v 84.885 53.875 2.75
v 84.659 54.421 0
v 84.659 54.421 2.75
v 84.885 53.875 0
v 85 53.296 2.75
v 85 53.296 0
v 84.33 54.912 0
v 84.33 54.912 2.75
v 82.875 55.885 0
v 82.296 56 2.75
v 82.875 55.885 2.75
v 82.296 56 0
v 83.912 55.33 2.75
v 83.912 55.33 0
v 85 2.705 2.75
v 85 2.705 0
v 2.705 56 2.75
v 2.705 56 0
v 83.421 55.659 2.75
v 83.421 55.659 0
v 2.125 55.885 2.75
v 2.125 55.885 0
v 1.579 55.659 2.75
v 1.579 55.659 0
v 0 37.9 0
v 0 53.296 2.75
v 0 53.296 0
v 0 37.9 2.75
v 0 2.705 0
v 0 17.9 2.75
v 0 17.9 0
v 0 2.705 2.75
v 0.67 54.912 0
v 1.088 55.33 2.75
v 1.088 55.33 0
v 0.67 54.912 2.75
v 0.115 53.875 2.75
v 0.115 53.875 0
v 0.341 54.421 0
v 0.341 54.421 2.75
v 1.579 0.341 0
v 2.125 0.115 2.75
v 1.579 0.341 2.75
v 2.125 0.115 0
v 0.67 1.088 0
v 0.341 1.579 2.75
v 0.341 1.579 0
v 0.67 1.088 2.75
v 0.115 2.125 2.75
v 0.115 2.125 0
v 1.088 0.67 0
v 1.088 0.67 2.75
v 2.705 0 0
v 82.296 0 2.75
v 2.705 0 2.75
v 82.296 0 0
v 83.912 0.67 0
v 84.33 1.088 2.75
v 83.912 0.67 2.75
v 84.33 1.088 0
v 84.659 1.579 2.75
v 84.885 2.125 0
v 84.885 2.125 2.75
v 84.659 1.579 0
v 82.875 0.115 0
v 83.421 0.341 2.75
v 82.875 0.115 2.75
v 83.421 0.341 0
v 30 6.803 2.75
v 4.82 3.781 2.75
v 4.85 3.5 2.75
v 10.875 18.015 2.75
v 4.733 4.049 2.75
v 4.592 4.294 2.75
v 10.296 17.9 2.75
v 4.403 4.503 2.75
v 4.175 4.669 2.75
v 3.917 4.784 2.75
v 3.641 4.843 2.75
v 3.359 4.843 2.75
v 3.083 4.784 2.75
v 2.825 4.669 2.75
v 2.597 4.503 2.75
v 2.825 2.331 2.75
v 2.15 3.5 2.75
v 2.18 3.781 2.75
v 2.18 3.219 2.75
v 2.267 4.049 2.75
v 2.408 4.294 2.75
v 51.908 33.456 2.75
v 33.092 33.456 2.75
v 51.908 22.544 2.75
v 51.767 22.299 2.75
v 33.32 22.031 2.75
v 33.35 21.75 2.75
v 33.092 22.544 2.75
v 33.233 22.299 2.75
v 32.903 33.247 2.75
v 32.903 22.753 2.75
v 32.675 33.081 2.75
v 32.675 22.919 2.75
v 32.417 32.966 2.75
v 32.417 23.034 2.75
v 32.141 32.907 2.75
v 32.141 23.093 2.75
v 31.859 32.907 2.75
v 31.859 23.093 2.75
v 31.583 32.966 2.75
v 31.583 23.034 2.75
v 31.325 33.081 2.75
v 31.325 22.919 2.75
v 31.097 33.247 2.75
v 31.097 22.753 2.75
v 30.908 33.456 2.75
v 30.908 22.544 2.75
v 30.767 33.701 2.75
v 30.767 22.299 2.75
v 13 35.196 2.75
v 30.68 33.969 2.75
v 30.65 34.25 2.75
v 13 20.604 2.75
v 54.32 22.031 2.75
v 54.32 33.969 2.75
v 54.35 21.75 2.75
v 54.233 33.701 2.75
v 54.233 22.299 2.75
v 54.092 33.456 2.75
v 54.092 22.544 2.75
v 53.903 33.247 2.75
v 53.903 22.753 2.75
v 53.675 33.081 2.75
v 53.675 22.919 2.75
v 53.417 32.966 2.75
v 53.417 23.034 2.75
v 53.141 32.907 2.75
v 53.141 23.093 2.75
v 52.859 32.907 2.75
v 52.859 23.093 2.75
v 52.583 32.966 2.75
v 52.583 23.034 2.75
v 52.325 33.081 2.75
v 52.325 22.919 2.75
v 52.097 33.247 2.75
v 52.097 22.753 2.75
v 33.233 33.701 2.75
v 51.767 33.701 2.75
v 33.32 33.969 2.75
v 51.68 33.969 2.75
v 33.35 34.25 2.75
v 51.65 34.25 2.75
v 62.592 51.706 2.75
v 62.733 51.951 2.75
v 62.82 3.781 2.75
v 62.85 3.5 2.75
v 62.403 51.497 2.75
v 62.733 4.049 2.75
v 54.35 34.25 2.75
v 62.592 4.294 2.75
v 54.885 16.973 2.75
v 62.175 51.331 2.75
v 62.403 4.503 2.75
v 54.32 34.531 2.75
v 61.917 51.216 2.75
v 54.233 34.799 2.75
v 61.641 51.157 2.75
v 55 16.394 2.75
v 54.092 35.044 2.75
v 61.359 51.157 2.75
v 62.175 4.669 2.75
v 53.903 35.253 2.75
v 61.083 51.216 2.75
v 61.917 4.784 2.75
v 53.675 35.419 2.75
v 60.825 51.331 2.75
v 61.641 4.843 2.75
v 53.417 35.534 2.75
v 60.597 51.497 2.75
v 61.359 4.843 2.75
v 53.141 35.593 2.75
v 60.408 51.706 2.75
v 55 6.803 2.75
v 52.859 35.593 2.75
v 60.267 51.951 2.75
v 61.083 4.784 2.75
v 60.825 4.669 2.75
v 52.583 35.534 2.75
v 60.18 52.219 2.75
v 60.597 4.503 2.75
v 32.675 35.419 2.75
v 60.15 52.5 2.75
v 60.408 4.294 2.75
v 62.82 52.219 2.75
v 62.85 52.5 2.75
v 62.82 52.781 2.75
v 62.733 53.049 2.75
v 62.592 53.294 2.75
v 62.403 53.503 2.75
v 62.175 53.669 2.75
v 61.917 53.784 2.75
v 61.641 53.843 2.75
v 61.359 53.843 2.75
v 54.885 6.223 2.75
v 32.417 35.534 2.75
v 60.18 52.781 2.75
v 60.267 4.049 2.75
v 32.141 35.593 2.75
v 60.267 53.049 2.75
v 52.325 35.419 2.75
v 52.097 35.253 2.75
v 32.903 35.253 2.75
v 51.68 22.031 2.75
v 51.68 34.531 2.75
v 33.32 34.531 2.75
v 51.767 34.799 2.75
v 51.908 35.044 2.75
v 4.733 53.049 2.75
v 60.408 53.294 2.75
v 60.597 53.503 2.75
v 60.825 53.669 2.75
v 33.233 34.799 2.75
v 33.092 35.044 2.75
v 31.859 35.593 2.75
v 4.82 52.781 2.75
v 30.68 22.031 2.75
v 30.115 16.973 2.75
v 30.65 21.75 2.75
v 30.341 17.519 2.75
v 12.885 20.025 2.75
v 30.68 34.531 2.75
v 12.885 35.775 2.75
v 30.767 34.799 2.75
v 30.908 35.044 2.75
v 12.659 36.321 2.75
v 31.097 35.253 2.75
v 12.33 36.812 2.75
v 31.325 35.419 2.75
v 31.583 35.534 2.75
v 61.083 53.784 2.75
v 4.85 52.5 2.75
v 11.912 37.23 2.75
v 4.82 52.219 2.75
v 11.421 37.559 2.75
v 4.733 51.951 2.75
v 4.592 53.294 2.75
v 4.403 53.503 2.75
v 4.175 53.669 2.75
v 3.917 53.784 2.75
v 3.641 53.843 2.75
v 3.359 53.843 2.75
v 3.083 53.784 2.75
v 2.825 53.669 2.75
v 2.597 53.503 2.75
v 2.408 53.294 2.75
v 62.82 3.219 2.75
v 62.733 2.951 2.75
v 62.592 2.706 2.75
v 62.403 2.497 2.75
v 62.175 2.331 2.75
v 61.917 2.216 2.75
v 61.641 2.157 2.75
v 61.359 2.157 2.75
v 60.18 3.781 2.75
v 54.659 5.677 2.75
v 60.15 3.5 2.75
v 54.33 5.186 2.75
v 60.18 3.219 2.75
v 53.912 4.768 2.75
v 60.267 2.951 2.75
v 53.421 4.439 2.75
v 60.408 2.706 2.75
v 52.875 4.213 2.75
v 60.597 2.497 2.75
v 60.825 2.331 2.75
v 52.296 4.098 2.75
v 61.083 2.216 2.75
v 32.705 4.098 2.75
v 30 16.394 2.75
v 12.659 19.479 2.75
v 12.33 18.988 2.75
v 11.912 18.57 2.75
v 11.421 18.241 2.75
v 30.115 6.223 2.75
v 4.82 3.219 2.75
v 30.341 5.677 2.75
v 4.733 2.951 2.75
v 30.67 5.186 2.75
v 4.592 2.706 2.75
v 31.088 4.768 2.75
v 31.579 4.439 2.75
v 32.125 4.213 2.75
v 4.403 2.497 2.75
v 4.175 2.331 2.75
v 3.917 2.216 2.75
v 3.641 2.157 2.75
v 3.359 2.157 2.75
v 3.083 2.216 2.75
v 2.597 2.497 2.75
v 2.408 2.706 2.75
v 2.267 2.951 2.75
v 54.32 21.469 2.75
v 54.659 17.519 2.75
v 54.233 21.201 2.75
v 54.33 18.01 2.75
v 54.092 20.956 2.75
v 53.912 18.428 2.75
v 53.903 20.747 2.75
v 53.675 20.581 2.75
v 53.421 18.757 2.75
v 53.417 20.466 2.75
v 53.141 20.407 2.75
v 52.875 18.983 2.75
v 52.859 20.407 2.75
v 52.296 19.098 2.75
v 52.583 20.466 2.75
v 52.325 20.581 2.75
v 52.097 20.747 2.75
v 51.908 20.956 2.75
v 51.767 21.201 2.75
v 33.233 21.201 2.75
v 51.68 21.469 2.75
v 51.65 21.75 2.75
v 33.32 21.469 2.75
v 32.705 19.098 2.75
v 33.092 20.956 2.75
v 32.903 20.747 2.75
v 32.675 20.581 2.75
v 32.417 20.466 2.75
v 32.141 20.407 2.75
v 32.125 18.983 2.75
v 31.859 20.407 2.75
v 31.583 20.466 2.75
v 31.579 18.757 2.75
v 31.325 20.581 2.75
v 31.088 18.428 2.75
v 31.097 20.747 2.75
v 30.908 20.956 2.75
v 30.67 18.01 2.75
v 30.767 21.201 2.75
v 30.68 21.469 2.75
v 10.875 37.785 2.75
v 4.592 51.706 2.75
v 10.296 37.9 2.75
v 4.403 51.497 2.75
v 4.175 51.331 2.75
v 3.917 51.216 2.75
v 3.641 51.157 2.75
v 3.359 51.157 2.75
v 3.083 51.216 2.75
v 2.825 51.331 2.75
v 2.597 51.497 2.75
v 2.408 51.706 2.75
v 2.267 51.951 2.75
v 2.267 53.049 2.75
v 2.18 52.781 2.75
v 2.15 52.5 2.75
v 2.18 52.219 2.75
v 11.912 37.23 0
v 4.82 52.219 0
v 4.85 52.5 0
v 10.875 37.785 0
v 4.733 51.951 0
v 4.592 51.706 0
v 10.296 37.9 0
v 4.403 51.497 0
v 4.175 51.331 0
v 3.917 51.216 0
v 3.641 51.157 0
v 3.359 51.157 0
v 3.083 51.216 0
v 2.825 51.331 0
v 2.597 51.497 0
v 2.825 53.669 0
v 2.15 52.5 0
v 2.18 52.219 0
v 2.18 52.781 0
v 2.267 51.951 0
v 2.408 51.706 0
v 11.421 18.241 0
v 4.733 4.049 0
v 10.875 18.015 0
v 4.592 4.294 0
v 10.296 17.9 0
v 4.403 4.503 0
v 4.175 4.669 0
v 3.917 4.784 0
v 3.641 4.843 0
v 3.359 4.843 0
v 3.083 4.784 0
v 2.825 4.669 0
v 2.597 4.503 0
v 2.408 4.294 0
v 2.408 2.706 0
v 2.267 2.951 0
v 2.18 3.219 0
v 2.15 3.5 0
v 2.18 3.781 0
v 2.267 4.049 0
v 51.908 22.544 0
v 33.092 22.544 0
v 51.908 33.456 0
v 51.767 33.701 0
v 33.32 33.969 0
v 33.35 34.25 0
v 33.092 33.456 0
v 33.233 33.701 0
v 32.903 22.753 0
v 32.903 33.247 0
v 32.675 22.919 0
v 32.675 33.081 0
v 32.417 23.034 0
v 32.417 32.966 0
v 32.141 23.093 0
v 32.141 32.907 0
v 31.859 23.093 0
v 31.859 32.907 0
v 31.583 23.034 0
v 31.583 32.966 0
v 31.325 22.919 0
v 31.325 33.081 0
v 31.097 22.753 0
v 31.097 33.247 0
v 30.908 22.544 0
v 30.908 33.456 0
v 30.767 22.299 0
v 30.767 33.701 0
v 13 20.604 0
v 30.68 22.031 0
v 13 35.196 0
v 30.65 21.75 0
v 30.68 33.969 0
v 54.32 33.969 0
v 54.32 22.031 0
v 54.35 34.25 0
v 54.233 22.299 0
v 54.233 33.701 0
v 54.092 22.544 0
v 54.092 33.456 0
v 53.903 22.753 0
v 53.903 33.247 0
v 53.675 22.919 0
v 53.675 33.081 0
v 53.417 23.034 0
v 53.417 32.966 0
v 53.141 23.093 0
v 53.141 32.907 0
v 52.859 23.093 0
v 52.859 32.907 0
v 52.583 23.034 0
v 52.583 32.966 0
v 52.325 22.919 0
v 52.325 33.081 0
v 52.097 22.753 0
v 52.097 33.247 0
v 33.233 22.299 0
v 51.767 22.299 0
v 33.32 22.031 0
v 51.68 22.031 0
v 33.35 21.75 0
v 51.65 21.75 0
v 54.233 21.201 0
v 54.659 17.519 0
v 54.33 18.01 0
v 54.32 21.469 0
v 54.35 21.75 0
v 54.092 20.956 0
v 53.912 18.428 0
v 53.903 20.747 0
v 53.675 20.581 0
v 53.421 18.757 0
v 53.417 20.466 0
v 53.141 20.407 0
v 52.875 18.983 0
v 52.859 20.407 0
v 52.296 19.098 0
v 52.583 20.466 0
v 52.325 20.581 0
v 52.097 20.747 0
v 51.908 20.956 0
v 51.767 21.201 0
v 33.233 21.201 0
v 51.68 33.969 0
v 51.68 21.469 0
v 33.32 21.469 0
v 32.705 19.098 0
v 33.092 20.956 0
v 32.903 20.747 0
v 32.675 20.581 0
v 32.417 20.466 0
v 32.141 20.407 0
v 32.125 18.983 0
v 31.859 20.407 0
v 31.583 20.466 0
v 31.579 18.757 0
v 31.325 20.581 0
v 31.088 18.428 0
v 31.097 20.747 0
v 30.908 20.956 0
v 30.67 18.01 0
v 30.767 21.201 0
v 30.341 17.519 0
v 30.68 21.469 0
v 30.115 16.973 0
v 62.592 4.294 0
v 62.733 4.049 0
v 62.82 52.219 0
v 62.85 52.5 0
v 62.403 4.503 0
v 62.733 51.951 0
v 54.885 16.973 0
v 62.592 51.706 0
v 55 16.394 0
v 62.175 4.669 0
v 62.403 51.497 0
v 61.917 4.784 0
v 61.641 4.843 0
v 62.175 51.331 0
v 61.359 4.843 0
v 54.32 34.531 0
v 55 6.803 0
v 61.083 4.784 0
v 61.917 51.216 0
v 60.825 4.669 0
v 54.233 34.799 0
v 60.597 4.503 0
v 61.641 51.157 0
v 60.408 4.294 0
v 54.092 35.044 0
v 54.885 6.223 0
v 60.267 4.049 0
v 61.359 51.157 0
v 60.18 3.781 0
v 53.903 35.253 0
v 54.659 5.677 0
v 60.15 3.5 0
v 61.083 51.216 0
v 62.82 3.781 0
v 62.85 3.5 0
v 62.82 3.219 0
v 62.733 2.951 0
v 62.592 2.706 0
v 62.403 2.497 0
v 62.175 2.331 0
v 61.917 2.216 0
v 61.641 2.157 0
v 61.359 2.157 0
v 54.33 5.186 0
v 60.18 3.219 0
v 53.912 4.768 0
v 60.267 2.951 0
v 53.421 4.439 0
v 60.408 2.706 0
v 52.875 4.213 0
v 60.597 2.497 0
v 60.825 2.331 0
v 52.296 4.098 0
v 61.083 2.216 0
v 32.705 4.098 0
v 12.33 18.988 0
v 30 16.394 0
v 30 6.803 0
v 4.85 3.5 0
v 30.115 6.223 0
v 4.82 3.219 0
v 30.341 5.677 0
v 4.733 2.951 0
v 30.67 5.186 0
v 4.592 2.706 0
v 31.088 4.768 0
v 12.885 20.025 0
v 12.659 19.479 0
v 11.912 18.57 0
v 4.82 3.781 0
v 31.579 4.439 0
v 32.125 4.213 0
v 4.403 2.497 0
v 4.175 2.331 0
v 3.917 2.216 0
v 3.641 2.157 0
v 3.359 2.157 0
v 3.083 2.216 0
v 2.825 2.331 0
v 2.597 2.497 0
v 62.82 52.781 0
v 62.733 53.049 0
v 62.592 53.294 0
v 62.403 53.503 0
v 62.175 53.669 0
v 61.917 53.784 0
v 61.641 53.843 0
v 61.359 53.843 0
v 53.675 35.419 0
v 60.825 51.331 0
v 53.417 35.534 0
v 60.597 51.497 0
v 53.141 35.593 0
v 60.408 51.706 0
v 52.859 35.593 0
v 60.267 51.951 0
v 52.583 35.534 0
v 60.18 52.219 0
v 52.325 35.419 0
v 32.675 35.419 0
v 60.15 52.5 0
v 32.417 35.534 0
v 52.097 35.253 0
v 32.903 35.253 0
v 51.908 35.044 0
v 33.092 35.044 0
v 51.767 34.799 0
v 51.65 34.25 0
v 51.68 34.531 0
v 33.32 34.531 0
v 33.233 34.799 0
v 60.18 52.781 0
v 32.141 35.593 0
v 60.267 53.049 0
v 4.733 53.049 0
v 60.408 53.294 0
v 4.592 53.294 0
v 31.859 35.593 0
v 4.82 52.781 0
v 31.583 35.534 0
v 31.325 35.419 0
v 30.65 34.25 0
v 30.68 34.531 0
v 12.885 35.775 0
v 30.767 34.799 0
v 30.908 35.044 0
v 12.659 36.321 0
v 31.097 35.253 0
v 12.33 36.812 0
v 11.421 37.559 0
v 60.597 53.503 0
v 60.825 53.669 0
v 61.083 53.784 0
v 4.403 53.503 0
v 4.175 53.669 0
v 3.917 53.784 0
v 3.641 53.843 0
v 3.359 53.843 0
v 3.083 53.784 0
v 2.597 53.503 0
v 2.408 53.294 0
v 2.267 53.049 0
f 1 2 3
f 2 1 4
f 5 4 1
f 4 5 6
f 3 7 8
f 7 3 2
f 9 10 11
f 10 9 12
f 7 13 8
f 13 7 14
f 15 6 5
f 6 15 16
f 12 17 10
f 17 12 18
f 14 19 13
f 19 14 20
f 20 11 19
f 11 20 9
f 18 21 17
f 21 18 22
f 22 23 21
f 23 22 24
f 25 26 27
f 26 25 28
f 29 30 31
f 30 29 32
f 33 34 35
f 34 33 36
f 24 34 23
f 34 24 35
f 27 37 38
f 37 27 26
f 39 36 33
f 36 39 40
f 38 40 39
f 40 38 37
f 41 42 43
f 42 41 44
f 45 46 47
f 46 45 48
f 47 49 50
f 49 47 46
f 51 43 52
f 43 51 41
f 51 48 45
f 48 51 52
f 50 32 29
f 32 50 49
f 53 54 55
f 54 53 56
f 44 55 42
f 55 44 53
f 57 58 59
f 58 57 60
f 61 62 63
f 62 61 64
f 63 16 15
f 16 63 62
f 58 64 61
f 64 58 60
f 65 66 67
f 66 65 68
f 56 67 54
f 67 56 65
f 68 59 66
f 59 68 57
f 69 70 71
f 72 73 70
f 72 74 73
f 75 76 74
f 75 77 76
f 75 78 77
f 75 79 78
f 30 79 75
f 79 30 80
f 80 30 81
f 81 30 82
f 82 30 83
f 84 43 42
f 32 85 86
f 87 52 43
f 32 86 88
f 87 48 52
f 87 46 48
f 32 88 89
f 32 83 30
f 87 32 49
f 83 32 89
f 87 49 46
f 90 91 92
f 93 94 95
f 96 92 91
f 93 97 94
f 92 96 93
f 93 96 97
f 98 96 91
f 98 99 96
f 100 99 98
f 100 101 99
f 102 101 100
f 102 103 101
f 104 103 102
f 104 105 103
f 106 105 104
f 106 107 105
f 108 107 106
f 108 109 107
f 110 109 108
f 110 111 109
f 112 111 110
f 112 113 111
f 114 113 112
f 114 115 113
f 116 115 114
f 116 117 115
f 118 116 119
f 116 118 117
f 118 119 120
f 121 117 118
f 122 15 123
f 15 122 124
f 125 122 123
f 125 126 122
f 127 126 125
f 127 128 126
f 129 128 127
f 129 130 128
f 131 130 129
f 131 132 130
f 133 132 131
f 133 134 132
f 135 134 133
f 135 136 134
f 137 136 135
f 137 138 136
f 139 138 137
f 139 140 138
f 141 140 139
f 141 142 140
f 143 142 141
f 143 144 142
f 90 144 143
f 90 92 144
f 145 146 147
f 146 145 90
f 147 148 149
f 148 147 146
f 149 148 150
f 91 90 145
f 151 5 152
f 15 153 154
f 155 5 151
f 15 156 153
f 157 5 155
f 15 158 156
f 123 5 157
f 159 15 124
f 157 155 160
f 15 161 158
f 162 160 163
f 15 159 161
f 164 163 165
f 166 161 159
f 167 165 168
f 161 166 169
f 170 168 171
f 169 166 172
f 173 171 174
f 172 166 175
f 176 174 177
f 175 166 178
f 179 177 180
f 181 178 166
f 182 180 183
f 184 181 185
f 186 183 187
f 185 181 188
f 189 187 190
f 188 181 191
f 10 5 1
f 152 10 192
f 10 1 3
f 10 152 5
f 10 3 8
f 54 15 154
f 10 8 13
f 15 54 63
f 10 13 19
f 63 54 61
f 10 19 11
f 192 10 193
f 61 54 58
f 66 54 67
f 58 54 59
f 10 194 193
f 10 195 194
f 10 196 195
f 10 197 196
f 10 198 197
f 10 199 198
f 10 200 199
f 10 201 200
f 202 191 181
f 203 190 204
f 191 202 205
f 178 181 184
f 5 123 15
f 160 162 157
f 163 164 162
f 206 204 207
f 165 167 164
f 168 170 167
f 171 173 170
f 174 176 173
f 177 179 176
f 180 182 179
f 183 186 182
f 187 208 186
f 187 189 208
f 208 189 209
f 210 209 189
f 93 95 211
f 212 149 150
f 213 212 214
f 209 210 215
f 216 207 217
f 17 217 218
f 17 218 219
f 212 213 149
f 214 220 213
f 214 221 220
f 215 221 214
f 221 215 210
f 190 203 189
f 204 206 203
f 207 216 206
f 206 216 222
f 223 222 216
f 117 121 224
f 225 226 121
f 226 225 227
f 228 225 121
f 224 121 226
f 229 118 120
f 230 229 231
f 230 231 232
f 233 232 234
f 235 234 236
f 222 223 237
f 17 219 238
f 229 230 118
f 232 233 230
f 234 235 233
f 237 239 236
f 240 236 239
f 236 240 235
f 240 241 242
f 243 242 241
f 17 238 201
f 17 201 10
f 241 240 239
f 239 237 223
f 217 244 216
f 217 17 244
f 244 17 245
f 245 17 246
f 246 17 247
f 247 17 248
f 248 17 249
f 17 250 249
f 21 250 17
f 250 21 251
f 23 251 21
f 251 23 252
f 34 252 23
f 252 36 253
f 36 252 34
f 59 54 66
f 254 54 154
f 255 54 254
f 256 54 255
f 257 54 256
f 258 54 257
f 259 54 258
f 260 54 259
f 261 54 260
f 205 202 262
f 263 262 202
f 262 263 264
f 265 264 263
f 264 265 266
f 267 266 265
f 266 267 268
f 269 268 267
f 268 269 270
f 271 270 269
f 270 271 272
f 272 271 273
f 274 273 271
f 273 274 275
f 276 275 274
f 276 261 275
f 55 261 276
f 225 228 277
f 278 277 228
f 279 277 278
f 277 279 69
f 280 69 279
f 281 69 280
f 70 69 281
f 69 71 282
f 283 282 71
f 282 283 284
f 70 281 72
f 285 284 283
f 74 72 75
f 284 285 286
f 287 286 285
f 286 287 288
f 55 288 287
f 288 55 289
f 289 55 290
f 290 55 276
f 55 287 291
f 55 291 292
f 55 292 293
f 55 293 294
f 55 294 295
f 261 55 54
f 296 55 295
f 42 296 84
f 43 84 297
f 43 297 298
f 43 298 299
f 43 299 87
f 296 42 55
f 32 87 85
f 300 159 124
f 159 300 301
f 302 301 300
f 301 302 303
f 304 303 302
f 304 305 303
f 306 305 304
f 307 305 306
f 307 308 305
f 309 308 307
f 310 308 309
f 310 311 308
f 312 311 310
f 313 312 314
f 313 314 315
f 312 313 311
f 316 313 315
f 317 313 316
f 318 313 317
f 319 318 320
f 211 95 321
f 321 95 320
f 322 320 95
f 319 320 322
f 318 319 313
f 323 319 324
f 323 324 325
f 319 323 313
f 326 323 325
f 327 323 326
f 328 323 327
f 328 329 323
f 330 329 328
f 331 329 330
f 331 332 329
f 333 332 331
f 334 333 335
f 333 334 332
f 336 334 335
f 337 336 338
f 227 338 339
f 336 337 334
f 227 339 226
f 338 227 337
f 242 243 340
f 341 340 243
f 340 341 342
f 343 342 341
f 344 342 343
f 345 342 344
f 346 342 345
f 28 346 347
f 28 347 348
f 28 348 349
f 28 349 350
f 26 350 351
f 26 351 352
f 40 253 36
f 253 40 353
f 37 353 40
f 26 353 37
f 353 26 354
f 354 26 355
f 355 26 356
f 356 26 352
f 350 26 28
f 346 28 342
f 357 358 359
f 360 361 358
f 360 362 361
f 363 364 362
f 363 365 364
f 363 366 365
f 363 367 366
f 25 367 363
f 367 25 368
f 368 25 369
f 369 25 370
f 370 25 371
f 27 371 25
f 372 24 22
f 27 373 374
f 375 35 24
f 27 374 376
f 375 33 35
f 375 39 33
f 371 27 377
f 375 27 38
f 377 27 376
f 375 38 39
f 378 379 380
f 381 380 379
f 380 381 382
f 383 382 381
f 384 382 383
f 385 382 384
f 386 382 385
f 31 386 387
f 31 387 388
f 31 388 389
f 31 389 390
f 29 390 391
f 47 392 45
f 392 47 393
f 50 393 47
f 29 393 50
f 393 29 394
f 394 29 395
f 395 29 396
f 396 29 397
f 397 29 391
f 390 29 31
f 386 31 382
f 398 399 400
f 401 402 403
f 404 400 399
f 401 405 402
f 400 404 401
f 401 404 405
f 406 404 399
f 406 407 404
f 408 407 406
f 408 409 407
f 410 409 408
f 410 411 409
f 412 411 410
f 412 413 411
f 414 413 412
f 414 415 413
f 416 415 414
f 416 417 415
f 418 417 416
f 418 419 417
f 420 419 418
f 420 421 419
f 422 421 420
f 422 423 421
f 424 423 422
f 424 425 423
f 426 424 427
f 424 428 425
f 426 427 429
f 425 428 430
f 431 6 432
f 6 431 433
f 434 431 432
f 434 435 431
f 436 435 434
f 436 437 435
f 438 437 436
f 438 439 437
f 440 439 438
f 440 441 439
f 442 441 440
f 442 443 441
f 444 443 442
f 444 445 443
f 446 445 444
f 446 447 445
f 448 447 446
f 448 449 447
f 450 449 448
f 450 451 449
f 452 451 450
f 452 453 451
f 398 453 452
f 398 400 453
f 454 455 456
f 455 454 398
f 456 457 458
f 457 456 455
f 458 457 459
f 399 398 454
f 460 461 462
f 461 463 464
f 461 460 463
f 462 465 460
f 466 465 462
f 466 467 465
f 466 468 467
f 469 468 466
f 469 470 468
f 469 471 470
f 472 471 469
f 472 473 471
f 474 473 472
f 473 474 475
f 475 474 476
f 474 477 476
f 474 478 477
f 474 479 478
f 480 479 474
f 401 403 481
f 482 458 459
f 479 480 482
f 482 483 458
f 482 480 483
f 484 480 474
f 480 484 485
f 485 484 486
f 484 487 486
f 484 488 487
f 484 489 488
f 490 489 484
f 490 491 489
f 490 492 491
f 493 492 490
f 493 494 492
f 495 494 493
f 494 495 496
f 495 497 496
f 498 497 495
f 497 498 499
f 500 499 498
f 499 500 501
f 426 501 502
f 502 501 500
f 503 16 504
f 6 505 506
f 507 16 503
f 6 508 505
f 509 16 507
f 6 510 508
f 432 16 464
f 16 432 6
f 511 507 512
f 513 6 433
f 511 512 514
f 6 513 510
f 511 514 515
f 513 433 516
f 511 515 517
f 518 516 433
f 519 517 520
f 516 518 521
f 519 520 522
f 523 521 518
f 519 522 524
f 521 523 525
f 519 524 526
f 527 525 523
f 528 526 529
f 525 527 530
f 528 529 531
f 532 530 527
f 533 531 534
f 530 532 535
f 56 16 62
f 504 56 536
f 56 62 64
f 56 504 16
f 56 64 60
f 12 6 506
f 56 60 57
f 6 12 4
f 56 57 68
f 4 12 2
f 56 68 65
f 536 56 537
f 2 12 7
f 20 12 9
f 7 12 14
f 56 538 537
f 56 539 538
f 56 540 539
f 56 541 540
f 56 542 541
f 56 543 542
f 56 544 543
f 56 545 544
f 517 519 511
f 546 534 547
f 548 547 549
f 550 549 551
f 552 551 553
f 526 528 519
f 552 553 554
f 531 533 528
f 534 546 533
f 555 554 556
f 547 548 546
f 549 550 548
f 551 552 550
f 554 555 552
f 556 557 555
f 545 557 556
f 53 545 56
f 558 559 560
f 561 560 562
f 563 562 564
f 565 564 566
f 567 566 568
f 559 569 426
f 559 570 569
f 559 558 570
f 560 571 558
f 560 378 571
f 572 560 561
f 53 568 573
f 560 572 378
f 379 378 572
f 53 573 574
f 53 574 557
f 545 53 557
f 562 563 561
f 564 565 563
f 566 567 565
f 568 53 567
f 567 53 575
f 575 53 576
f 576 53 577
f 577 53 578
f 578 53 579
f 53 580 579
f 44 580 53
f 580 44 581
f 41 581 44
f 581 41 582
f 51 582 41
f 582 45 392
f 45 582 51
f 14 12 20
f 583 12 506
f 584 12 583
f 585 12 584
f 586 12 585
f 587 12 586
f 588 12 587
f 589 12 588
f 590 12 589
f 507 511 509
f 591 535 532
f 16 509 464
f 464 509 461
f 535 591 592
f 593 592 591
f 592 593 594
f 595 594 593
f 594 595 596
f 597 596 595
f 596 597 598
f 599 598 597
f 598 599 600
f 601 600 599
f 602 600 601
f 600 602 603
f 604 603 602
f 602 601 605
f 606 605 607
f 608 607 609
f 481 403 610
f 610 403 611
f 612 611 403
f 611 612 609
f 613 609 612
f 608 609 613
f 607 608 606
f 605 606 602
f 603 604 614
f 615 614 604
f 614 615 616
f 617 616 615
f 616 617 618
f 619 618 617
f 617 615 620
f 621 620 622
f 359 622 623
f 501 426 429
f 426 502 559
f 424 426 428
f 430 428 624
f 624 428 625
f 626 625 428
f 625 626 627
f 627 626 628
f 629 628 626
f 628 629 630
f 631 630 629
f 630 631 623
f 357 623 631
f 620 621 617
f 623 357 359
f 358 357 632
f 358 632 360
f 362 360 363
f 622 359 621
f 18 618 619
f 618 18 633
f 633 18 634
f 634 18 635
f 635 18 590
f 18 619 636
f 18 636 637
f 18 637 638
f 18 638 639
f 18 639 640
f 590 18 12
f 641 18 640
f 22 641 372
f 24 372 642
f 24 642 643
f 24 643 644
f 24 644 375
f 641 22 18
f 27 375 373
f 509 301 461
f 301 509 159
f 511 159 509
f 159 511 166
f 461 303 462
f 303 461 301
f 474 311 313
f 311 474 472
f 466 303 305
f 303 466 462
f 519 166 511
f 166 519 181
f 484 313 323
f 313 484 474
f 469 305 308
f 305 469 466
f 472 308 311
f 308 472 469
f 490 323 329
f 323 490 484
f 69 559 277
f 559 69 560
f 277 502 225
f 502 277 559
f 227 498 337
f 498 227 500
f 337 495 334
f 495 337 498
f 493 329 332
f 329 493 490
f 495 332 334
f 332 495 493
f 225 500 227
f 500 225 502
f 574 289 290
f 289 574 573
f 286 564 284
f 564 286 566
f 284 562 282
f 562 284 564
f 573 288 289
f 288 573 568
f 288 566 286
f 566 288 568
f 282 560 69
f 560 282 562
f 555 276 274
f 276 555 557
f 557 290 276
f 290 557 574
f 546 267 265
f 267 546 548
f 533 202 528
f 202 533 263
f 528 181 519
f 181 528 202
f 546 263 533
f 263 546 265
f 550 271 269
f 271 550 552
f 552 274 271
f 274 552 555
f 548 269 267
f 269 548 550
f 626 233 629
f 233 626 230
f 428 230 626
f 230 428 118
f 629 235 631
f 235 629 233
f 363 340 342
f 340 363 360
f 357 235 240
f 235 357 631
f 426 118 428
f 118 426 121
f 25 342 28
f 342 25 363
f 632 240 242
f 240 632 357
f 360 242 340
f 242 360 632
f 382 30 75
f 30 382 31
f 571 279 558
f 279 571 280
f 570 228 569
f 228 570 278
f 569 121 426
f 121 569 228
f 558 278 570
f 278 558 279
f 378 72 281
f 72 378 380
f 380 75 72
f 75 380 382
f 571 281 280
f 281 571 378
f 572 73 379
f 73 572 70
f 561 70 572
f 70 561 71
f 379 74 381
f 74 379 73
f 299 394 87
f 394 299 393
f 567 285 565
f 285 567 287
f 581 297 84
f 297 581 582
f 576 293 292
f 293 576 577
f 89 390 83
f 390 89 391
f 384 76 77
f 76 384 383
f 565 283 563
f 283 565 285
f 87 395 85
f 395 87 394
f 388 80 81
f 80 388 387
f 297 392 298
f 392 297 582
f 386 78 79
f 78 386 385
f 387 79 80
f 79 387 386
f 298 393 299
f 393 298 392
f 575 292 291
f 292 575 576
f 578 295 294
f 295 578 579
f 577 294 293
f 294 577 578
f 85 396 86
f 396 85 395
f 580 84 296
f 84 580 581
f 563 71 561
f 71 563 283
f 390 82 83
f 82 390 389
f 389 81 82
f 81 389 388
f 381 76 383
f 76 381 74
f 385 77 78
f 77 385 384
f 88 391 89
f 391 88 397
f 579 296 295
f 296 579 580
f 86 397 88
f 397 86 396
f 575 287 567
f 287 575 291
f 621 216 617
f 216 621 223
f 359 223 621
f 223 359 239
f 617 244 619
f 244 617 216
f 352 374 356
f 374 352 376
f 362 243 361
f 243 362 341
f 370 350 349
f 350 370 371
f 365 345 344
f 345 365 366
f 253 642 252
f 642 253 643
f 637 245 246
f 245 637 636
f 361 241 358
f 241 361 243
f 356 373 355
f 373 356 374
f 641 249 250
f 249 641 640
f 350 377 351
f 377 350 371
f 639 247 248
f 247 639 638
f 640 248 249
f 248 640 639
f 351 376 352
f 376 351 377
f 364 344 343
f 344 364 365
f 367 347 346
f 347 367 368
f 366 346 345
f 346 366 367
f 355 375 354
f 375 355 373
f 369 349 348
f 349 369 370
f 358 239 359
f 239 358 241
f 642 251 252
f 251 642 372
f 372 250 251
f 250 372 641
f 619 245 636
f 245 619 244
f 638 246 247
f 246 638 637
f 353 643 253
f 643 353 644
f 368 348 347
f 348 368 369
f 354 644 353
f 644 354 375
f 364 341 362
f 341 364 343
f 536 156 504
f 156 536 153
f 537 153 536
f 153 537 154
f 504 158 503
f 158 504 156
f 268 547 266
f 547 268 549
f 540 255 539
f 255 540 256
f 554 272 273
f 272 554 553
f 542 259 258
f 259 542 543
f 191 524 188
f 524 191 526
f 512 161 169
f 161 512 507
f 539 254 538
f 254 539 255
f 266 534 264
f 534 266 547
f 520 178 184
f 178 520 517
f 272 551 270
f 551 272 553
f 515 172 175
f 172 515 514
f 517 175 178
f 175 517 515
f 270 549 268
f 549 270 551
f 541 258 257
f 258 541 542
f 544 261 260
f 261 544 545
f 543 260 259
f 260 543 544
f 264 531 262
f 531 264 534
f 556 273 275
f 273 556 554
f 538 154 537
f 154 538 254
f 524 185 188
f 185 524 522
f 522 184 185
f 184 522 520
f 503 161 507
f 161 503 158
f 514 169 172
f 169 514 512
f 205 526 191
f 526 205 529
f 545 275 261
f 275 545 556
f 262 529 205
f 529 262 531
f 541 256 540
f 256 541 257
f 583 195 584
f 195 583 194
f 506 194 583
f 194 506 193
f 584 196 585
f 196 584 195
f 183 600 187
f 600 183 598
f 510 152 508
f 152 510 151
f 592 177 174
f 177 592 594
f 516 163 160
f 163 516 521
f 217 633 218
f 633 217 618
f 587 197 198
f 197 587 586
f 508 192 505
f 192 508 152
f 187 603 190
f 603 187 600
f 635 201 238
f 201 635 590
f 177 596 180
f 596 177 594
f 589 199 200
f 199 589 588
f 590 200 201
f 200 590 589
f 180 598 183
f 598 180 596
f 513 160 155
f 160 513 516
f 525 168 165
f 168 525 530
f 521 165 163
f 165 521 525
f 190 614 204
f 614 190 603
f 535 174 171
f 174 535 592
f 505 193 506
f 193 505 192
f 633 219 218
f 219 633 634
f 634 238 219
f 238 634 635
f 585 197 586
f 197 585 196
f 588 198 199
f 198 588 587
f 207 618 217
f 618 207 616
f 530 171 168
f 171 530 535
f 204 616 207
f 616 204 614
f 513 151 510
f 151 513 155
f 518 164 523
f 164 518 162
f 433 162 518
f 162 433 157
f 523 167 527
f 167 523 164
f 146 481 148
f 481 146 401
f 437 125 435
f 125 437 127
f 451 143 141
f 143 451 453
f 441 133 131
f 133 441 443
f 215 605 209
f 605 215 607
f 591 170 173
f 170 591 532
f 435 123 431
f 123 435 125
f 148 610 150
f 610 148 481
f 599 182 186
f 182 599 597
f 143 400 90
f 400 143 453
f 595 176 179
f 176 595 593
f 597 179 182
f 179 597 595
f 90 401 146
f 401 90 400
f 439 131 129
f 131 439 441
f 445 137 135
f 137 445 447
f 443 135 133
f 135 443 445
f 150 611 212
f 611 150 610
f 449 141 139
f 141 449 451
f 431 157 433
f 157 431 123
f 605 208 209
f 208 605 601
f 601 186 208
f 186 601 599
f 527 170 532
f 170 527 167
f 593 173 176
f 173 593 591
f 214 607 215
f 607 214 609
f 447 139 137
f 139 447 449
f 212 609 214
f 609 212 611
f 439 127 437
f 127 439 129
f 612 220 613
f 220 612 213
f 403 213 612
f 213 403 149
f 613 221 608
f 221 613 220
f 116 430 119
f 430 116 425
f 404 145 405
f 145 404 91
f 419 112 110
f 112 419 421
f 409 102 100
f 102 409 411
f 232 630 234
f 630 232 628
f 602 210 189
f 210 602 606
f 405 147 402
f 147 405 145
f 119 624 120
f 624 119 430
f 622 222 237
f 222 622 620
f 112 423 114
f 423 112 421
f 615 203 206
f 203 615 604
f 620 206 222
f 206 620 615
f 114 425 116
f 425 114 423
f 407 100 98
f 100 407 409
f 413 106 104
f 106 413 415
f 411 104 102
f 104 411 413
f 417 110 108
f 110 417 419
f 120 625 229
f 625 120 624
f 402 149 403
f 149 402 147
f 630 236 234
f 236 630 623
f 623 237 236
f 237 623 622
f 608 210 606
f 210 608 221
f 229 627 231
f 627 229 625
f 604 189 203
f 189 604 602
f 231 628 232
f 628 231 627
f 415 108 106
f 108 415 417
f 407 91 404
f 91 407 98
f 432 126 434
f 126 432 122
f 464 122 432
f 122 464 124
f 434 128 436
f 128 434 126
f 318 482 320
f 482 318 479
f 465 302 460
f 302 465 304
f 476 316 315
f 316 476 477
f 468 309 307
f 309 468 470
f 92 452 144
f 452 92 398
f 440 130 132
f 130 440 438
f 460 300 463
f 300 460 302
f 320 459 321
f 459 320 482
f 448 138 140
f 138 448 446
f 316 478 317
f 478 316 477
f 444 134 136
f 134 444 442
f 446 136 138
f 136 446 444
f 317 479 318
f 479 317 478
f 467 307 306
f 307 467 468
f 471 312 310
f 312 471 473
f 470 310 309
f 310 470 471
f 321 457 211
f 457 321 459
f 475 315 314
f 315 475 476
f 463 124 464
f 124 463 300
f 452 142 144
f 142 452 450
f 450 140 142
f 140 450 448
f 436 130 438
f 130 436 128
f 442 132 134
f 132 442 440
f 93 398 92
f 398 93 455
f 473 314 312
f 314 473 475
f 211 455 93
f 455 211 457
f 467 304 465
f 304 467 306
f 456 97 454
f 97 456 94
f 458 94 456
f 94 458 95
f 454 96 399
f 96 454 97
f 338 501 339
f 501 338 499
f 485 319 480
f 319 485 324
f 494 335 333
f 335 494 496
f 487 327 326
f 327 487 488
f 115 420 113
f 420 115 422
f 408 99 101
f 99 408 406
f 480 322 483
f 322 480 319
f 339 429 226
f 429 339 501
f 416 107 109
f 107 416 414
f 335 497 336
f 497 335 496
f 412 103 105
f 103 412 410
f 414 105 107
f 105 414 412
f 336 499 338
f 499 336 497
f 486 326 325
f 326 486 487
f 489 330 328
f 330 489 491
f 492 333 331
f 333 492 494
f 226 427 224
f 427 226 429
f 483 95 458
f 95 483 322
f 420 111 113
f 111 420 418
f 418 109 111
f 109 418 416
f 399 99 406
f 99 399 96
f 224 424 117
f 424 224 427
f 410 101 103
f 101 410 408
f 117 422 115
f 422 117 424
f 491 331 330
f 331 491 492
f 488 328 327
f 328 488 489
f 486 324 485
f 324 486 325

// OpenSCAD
include <BOSL/constants.scad>
use <BOSL/shapes.scad>

$fs = 0.01;

cam_hole_x_dist = 25 - 2 - 2;
cam_hole_y_dist = 14.5 - 2;
cam_pcb_x_length = 25;
cam_pcb_y_length = 23.862;

// this is for the pi 4b and the HQ camera module
difference()
{
    cuboid([ 85, 56, 2.75 ], fillet = 3, edges = EDGES_Z_ALL, center = false);

    // pi holes
    translate([ 3.5, 3.5, -1 ]) cylinder(h = 5, r = 1.35);
    translate([ 3.5, 49 + 3.5, -1 ]) cylinder(h = 5, r = 1.35);
    translate([ 3.5 + 58, 3.5, -1 ]) cylinder(h = 5, r = 1.35);
    translate([ 3.5 + 58, 49 + 3.5, -1 ]) cylinder(h = 5, r = 1.35);

    // mid: 42.5 x 28

    // camera holes
    translate([ (85 / 2) + (cam_hole_x_dist / 2), (56 / 2) + (cam_hole_y_dist / 2), -1 ]) // 57.5 x 43
        cylinder(h = 5, r = 1.35);
    translate([ (85 / 2) - (cam_hole_x_dist / 2), (56 / 2) + (cam_hole_y_dist / 2), -1 ]) // 23.5 x 43
        cylinder(h = 5, r = 1.35);
    translate([ (85 / 2) + (cam_hole_x_dist / 2), (56 / 2) - (cam_hole_y_dist / 2), -1 ]) // 57.5 x 13
        cylinder(h = 5, r = 1.35);
    translate([ (85 / 2) - (cam_hole_x_dist / 2), (56 / 2) - (cam_hole_y_dist / 2), -1 ]) // 23.5 x 13
        cylinder(h = 5, r = 1.35);

    // cable gap 23 x 7
    cable_connector_length = 5.71;
    // y distance between hole and cable connector
    cable_connector_offset = cam_pcb_y_length - (cam_hole_y_dist + (2 * 2)) - cable_connector_length;
    cable_connector_buffer = 1;
    cable_cutout_length = 15;
    cable_cutout_width = cam_pcb_x_length;

    translate([
        (85 / 2) - (cable_cutout_width / 2),
        (56 / 2) -
            ((cam_hole_y_dist + (2 * 2)) / 2 + cable_connector_offset + cable_cutout_length - cable_connector_buffer),
        -1
    ]) cuboid([ cable_cutout_width, cable_cutout_length, 5 ], fillet = 3, edges = EDGES_Z_ALL, center = false);

    // microsd gap 13 x 15
    // y 17.9
    translate([ -3, 17.9, -1 ]) cuboid([ 16, 20, 5 ], fillet = 3, edges = EDGES_Z_ALL, center = false);
};
